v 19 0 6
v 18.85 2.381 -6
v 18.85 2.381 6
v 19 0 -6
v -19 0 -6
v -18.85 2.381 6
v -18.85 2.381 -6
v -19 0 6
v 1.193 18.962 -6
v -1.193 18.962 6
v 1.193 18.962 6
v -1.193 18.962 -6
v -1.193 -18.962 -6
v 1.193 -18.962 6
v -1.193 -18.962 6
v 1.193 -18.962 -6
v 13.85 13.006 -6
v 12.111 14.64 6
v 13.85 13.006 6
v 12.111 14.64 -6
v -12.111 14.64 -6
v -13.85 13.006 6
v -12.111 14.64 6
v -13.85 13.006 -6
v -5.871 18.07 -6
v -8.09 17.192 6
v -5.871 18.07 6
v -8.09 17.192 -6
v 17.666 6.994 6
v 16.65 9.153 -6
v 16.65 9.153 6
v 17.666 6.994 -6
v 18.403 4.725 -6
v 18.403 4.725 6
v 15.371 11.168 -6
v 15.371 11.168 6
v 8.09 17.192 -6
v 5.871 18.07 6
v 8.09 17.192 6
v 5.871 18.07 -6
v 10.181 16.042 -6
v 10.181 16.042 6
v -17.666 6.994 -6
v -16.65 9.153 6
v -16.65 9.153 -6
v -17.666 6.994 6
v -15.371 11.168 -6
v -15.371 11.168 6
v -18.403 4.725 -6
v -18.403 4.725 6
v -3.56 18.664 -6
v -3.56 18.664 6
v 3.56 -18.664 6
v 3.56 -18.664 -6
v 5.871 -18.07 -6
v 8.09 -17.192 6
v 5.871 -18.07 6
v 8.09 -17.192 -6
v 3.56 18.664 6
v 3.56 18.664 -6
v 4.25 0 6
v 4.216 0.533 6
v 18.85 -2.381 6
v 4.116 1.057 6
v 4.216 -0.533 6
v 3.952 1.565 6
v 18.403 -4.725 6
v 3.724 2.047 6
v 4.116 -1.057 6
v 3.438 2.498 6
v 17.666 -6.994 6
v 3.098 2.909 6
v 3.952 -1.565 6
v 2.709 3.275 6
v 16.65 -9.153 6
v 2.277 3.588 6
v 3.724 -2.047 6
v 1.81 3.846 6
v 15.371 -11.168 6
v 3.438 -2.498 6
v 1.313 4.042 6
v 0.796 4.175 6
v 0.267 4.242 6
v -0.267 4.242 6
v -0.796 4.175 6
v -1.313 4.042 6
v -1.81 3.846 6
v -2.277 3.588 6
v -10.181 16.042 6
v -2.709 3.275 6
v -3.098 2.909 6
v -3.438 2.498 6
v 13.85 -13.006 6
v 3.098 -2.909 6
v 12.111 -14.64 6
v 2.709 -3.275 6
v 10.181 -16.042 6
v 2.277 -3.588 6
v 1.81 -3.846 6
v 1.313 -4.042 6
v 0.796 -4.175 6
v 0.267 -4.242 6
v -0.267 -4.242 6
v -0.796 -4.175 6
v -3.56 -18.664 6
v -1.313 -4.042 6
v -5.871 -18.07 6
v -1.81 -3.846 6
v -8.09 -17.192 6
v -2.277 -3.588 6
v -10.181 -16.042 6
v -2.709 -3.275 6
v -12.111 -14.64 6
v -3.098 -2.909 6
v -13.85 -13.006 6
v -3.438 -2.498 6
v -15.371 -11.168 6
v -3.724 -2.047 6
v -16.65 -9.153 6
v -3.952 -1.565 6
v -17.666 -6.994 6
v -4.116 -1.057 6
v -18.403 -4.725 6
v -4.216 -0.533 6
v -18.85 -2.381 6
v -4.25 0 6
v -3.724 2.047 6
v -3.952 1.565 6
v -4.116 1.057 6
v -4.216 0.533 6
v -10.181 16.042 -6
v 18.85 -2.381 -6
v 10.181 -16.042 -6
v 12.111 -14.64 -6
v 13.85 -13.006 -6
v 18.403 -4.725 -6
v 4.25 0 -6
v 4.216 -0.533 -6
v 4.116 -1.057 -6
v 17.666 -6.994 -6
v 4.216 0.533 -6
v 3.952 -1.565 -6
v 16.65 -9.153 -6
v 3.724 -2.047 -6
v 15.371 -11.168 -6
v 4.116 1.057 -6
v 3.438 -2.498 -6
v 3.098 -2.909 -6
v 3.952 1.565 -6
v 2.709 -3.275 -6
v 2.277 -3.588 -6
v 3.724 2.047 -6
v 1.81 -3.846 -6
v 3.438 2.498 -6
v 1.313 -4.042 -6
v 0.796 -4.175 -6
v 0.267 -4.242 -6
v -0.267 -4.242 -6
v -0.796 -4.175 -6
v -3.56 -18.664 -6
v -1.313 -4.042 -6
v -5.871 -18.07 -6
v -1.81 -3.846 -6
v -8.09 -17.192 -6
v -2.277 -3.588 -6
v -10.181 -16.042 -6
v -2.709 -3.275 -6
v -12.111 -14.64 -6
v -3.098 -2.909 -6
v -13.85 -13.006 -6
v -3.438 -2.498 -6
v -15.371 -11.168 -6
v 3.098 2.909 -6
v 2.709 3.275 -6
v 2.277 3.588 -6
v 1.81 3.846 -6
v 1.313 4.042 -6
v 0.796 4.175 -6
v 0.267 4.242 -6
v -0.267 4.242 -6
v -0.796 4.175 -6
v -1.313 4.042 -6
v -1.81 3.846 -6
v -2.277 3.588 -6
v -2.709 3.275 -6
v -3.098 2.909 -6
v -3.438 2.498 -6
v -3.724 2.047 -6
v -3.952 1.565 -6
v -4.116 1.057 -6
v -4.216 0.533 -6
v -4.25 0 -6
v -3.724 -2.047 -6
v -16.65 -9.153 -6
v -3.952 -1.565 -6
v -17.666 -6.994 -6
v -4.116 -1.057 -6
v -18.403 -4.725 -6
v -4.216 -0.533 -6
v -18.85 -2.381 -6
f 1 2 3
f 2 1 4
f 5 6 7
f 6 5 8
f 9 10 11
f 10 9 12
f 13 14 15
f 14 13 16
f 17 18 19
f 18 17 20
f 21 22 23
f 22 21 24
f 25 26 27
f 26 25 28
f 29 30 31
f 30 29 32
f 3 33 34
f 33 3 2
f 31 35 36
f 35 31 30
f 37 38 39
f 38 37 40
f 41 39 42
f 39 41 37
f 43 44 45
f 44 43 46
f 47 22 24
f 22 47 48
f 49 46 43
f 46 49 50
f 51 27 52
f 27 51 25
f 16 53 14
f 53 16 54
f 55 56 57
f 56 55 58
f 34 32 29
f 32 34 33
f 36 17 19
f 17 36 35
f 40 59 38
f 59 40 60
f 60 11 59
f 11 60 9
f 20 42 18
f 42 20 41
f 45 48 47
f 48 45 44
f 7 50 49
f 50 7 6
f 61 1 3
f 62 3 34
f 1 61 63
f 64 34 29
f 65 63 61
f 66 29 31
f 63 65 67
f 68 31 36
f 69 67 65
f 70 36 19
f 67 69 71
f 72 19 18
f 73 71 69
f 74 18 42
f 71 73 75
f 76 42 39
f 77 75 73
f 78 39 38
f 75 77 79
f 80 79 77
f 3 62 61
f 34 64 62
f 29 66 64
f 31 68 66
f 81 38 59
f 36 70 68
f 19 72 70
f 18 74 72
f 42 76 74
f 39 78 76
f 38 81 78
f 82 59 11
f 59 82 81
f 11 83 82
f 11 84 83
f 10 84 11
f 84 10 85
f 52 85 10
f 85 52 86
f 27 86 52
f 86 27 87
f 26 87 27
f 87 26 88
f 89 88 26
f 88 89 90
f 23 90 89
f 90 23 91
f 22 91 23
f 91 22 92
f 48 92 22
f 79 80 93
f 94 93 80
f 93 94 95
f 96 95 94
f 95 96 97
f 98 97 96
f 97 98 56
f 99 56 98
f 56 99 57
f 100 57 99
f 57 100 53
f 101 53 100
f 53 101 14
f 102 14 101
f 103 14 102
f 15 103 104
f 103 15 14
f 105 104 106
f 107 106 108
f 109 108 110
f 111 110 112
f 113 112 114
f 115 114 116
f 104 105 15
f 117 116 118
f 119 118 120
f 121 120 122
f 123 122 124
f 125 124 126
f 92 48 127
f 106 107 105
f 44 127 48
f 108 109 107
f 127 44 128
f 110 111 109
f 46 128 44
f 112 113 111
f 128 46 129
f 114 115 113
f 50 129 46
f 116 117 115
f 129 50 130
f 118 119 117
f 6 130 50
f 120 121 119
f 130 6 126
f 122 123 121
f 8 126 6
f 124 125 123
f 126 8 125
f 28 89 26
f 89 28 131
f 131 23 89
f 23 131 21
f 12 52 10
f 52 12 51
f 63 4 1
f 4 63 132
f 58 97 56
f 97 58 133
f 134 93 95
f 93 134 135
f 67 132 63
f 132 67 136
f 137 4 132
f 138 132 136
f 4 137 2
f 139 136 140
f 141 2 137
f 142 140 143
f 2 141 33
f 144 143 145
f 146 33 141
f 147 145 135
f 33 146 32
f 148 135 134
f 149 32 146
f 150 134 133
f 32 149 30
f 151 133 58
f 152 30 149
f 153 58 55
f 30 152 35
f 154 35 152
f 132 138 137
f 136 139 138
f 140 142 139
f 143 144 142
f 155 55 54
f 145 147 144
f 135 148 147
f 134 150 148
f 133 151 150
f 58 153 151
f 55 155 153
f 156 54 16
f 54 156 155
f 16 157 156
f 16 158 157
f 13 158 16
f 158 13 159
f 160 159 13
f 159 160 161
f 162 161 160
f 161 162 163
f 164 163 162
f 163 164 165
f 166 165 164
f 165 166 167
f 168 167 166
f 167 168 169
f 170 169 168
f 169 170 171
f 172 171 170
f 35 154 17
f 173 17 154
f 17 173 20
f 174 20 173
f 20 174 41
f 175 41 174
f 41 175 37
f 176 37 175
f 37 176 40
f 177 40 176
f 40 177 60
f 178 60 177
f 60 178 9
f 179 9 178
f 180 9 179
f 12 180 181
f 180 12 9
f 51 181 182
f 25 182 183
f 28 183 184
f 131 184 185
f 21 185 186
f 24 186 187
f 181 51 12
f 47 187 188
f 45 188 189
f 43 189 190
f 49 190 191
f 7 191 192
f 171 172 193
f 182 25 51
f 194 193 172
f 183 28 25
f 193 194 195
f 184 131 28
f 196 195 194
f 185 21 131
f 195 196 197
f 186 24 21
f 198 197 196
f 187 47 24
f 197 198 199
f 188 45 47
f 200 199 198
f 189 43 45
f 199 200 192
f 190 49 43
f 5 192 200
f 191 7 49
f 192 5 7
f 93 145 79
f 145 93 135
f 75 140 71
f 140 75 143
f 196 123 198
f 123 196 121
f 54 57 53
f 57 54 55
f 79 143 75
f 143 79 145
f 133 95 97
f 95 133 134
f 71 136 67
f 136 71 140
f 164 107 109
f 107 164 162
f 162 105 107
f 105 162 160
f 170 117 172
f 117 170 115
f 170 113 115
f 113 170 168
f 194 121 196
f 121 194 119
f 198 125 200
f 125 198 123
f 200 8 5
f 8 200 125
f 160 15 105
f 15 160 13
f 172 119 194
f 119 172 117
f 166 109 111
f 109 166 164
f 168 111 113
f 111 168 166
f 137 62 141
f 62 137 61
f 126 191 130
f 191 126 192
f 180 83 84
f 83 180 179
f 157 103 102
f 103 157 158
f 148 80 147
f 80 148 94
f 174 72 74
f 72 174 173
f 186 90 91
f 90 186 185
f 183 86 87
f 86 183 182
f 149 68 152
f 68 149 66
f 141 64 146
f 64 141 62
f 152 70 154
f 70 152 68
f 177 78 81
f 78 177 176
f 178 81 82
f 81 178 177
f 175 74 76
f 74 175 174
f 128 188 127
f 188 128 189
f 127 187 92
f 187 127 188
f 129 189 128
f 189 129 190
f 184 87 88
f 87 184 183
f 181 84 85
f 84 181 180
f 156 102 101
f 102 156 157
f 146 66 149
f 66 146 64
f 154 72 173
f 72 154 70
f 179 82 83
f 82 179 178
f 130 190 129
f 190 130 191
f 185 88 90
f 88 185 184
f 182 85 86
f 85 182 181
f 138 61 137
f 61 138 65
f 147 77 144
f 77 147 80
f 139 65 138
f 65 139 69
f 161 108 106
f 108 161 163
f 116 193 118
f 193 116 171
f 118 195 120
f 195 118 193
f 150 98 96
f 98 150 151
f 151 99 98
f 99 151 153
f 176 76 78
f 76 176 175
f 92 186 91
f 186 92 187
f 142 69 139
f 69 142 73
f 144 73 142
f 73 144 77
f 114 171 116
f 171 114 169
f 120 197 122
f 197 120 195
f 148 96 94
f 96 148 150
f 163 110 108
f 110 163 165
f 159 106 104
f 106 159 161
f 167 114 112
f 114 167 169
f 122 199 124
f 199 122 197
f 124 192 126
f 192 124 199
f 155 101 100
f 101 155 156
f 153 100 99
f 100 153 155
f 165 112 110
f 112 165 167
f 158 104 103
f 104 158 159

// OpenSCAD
$fn = 50;


difference() {
	union() {
		translate(v = [0, 0, -6.0000000000]) {
			cylinder(h = 12, r = 19.0000000000);
		}
	}
	union() {
		translate(v = [0, 0, -100.0000000000]) {
			cylinder(h = 200, r = 4.2500000000);
		}
	}
}
